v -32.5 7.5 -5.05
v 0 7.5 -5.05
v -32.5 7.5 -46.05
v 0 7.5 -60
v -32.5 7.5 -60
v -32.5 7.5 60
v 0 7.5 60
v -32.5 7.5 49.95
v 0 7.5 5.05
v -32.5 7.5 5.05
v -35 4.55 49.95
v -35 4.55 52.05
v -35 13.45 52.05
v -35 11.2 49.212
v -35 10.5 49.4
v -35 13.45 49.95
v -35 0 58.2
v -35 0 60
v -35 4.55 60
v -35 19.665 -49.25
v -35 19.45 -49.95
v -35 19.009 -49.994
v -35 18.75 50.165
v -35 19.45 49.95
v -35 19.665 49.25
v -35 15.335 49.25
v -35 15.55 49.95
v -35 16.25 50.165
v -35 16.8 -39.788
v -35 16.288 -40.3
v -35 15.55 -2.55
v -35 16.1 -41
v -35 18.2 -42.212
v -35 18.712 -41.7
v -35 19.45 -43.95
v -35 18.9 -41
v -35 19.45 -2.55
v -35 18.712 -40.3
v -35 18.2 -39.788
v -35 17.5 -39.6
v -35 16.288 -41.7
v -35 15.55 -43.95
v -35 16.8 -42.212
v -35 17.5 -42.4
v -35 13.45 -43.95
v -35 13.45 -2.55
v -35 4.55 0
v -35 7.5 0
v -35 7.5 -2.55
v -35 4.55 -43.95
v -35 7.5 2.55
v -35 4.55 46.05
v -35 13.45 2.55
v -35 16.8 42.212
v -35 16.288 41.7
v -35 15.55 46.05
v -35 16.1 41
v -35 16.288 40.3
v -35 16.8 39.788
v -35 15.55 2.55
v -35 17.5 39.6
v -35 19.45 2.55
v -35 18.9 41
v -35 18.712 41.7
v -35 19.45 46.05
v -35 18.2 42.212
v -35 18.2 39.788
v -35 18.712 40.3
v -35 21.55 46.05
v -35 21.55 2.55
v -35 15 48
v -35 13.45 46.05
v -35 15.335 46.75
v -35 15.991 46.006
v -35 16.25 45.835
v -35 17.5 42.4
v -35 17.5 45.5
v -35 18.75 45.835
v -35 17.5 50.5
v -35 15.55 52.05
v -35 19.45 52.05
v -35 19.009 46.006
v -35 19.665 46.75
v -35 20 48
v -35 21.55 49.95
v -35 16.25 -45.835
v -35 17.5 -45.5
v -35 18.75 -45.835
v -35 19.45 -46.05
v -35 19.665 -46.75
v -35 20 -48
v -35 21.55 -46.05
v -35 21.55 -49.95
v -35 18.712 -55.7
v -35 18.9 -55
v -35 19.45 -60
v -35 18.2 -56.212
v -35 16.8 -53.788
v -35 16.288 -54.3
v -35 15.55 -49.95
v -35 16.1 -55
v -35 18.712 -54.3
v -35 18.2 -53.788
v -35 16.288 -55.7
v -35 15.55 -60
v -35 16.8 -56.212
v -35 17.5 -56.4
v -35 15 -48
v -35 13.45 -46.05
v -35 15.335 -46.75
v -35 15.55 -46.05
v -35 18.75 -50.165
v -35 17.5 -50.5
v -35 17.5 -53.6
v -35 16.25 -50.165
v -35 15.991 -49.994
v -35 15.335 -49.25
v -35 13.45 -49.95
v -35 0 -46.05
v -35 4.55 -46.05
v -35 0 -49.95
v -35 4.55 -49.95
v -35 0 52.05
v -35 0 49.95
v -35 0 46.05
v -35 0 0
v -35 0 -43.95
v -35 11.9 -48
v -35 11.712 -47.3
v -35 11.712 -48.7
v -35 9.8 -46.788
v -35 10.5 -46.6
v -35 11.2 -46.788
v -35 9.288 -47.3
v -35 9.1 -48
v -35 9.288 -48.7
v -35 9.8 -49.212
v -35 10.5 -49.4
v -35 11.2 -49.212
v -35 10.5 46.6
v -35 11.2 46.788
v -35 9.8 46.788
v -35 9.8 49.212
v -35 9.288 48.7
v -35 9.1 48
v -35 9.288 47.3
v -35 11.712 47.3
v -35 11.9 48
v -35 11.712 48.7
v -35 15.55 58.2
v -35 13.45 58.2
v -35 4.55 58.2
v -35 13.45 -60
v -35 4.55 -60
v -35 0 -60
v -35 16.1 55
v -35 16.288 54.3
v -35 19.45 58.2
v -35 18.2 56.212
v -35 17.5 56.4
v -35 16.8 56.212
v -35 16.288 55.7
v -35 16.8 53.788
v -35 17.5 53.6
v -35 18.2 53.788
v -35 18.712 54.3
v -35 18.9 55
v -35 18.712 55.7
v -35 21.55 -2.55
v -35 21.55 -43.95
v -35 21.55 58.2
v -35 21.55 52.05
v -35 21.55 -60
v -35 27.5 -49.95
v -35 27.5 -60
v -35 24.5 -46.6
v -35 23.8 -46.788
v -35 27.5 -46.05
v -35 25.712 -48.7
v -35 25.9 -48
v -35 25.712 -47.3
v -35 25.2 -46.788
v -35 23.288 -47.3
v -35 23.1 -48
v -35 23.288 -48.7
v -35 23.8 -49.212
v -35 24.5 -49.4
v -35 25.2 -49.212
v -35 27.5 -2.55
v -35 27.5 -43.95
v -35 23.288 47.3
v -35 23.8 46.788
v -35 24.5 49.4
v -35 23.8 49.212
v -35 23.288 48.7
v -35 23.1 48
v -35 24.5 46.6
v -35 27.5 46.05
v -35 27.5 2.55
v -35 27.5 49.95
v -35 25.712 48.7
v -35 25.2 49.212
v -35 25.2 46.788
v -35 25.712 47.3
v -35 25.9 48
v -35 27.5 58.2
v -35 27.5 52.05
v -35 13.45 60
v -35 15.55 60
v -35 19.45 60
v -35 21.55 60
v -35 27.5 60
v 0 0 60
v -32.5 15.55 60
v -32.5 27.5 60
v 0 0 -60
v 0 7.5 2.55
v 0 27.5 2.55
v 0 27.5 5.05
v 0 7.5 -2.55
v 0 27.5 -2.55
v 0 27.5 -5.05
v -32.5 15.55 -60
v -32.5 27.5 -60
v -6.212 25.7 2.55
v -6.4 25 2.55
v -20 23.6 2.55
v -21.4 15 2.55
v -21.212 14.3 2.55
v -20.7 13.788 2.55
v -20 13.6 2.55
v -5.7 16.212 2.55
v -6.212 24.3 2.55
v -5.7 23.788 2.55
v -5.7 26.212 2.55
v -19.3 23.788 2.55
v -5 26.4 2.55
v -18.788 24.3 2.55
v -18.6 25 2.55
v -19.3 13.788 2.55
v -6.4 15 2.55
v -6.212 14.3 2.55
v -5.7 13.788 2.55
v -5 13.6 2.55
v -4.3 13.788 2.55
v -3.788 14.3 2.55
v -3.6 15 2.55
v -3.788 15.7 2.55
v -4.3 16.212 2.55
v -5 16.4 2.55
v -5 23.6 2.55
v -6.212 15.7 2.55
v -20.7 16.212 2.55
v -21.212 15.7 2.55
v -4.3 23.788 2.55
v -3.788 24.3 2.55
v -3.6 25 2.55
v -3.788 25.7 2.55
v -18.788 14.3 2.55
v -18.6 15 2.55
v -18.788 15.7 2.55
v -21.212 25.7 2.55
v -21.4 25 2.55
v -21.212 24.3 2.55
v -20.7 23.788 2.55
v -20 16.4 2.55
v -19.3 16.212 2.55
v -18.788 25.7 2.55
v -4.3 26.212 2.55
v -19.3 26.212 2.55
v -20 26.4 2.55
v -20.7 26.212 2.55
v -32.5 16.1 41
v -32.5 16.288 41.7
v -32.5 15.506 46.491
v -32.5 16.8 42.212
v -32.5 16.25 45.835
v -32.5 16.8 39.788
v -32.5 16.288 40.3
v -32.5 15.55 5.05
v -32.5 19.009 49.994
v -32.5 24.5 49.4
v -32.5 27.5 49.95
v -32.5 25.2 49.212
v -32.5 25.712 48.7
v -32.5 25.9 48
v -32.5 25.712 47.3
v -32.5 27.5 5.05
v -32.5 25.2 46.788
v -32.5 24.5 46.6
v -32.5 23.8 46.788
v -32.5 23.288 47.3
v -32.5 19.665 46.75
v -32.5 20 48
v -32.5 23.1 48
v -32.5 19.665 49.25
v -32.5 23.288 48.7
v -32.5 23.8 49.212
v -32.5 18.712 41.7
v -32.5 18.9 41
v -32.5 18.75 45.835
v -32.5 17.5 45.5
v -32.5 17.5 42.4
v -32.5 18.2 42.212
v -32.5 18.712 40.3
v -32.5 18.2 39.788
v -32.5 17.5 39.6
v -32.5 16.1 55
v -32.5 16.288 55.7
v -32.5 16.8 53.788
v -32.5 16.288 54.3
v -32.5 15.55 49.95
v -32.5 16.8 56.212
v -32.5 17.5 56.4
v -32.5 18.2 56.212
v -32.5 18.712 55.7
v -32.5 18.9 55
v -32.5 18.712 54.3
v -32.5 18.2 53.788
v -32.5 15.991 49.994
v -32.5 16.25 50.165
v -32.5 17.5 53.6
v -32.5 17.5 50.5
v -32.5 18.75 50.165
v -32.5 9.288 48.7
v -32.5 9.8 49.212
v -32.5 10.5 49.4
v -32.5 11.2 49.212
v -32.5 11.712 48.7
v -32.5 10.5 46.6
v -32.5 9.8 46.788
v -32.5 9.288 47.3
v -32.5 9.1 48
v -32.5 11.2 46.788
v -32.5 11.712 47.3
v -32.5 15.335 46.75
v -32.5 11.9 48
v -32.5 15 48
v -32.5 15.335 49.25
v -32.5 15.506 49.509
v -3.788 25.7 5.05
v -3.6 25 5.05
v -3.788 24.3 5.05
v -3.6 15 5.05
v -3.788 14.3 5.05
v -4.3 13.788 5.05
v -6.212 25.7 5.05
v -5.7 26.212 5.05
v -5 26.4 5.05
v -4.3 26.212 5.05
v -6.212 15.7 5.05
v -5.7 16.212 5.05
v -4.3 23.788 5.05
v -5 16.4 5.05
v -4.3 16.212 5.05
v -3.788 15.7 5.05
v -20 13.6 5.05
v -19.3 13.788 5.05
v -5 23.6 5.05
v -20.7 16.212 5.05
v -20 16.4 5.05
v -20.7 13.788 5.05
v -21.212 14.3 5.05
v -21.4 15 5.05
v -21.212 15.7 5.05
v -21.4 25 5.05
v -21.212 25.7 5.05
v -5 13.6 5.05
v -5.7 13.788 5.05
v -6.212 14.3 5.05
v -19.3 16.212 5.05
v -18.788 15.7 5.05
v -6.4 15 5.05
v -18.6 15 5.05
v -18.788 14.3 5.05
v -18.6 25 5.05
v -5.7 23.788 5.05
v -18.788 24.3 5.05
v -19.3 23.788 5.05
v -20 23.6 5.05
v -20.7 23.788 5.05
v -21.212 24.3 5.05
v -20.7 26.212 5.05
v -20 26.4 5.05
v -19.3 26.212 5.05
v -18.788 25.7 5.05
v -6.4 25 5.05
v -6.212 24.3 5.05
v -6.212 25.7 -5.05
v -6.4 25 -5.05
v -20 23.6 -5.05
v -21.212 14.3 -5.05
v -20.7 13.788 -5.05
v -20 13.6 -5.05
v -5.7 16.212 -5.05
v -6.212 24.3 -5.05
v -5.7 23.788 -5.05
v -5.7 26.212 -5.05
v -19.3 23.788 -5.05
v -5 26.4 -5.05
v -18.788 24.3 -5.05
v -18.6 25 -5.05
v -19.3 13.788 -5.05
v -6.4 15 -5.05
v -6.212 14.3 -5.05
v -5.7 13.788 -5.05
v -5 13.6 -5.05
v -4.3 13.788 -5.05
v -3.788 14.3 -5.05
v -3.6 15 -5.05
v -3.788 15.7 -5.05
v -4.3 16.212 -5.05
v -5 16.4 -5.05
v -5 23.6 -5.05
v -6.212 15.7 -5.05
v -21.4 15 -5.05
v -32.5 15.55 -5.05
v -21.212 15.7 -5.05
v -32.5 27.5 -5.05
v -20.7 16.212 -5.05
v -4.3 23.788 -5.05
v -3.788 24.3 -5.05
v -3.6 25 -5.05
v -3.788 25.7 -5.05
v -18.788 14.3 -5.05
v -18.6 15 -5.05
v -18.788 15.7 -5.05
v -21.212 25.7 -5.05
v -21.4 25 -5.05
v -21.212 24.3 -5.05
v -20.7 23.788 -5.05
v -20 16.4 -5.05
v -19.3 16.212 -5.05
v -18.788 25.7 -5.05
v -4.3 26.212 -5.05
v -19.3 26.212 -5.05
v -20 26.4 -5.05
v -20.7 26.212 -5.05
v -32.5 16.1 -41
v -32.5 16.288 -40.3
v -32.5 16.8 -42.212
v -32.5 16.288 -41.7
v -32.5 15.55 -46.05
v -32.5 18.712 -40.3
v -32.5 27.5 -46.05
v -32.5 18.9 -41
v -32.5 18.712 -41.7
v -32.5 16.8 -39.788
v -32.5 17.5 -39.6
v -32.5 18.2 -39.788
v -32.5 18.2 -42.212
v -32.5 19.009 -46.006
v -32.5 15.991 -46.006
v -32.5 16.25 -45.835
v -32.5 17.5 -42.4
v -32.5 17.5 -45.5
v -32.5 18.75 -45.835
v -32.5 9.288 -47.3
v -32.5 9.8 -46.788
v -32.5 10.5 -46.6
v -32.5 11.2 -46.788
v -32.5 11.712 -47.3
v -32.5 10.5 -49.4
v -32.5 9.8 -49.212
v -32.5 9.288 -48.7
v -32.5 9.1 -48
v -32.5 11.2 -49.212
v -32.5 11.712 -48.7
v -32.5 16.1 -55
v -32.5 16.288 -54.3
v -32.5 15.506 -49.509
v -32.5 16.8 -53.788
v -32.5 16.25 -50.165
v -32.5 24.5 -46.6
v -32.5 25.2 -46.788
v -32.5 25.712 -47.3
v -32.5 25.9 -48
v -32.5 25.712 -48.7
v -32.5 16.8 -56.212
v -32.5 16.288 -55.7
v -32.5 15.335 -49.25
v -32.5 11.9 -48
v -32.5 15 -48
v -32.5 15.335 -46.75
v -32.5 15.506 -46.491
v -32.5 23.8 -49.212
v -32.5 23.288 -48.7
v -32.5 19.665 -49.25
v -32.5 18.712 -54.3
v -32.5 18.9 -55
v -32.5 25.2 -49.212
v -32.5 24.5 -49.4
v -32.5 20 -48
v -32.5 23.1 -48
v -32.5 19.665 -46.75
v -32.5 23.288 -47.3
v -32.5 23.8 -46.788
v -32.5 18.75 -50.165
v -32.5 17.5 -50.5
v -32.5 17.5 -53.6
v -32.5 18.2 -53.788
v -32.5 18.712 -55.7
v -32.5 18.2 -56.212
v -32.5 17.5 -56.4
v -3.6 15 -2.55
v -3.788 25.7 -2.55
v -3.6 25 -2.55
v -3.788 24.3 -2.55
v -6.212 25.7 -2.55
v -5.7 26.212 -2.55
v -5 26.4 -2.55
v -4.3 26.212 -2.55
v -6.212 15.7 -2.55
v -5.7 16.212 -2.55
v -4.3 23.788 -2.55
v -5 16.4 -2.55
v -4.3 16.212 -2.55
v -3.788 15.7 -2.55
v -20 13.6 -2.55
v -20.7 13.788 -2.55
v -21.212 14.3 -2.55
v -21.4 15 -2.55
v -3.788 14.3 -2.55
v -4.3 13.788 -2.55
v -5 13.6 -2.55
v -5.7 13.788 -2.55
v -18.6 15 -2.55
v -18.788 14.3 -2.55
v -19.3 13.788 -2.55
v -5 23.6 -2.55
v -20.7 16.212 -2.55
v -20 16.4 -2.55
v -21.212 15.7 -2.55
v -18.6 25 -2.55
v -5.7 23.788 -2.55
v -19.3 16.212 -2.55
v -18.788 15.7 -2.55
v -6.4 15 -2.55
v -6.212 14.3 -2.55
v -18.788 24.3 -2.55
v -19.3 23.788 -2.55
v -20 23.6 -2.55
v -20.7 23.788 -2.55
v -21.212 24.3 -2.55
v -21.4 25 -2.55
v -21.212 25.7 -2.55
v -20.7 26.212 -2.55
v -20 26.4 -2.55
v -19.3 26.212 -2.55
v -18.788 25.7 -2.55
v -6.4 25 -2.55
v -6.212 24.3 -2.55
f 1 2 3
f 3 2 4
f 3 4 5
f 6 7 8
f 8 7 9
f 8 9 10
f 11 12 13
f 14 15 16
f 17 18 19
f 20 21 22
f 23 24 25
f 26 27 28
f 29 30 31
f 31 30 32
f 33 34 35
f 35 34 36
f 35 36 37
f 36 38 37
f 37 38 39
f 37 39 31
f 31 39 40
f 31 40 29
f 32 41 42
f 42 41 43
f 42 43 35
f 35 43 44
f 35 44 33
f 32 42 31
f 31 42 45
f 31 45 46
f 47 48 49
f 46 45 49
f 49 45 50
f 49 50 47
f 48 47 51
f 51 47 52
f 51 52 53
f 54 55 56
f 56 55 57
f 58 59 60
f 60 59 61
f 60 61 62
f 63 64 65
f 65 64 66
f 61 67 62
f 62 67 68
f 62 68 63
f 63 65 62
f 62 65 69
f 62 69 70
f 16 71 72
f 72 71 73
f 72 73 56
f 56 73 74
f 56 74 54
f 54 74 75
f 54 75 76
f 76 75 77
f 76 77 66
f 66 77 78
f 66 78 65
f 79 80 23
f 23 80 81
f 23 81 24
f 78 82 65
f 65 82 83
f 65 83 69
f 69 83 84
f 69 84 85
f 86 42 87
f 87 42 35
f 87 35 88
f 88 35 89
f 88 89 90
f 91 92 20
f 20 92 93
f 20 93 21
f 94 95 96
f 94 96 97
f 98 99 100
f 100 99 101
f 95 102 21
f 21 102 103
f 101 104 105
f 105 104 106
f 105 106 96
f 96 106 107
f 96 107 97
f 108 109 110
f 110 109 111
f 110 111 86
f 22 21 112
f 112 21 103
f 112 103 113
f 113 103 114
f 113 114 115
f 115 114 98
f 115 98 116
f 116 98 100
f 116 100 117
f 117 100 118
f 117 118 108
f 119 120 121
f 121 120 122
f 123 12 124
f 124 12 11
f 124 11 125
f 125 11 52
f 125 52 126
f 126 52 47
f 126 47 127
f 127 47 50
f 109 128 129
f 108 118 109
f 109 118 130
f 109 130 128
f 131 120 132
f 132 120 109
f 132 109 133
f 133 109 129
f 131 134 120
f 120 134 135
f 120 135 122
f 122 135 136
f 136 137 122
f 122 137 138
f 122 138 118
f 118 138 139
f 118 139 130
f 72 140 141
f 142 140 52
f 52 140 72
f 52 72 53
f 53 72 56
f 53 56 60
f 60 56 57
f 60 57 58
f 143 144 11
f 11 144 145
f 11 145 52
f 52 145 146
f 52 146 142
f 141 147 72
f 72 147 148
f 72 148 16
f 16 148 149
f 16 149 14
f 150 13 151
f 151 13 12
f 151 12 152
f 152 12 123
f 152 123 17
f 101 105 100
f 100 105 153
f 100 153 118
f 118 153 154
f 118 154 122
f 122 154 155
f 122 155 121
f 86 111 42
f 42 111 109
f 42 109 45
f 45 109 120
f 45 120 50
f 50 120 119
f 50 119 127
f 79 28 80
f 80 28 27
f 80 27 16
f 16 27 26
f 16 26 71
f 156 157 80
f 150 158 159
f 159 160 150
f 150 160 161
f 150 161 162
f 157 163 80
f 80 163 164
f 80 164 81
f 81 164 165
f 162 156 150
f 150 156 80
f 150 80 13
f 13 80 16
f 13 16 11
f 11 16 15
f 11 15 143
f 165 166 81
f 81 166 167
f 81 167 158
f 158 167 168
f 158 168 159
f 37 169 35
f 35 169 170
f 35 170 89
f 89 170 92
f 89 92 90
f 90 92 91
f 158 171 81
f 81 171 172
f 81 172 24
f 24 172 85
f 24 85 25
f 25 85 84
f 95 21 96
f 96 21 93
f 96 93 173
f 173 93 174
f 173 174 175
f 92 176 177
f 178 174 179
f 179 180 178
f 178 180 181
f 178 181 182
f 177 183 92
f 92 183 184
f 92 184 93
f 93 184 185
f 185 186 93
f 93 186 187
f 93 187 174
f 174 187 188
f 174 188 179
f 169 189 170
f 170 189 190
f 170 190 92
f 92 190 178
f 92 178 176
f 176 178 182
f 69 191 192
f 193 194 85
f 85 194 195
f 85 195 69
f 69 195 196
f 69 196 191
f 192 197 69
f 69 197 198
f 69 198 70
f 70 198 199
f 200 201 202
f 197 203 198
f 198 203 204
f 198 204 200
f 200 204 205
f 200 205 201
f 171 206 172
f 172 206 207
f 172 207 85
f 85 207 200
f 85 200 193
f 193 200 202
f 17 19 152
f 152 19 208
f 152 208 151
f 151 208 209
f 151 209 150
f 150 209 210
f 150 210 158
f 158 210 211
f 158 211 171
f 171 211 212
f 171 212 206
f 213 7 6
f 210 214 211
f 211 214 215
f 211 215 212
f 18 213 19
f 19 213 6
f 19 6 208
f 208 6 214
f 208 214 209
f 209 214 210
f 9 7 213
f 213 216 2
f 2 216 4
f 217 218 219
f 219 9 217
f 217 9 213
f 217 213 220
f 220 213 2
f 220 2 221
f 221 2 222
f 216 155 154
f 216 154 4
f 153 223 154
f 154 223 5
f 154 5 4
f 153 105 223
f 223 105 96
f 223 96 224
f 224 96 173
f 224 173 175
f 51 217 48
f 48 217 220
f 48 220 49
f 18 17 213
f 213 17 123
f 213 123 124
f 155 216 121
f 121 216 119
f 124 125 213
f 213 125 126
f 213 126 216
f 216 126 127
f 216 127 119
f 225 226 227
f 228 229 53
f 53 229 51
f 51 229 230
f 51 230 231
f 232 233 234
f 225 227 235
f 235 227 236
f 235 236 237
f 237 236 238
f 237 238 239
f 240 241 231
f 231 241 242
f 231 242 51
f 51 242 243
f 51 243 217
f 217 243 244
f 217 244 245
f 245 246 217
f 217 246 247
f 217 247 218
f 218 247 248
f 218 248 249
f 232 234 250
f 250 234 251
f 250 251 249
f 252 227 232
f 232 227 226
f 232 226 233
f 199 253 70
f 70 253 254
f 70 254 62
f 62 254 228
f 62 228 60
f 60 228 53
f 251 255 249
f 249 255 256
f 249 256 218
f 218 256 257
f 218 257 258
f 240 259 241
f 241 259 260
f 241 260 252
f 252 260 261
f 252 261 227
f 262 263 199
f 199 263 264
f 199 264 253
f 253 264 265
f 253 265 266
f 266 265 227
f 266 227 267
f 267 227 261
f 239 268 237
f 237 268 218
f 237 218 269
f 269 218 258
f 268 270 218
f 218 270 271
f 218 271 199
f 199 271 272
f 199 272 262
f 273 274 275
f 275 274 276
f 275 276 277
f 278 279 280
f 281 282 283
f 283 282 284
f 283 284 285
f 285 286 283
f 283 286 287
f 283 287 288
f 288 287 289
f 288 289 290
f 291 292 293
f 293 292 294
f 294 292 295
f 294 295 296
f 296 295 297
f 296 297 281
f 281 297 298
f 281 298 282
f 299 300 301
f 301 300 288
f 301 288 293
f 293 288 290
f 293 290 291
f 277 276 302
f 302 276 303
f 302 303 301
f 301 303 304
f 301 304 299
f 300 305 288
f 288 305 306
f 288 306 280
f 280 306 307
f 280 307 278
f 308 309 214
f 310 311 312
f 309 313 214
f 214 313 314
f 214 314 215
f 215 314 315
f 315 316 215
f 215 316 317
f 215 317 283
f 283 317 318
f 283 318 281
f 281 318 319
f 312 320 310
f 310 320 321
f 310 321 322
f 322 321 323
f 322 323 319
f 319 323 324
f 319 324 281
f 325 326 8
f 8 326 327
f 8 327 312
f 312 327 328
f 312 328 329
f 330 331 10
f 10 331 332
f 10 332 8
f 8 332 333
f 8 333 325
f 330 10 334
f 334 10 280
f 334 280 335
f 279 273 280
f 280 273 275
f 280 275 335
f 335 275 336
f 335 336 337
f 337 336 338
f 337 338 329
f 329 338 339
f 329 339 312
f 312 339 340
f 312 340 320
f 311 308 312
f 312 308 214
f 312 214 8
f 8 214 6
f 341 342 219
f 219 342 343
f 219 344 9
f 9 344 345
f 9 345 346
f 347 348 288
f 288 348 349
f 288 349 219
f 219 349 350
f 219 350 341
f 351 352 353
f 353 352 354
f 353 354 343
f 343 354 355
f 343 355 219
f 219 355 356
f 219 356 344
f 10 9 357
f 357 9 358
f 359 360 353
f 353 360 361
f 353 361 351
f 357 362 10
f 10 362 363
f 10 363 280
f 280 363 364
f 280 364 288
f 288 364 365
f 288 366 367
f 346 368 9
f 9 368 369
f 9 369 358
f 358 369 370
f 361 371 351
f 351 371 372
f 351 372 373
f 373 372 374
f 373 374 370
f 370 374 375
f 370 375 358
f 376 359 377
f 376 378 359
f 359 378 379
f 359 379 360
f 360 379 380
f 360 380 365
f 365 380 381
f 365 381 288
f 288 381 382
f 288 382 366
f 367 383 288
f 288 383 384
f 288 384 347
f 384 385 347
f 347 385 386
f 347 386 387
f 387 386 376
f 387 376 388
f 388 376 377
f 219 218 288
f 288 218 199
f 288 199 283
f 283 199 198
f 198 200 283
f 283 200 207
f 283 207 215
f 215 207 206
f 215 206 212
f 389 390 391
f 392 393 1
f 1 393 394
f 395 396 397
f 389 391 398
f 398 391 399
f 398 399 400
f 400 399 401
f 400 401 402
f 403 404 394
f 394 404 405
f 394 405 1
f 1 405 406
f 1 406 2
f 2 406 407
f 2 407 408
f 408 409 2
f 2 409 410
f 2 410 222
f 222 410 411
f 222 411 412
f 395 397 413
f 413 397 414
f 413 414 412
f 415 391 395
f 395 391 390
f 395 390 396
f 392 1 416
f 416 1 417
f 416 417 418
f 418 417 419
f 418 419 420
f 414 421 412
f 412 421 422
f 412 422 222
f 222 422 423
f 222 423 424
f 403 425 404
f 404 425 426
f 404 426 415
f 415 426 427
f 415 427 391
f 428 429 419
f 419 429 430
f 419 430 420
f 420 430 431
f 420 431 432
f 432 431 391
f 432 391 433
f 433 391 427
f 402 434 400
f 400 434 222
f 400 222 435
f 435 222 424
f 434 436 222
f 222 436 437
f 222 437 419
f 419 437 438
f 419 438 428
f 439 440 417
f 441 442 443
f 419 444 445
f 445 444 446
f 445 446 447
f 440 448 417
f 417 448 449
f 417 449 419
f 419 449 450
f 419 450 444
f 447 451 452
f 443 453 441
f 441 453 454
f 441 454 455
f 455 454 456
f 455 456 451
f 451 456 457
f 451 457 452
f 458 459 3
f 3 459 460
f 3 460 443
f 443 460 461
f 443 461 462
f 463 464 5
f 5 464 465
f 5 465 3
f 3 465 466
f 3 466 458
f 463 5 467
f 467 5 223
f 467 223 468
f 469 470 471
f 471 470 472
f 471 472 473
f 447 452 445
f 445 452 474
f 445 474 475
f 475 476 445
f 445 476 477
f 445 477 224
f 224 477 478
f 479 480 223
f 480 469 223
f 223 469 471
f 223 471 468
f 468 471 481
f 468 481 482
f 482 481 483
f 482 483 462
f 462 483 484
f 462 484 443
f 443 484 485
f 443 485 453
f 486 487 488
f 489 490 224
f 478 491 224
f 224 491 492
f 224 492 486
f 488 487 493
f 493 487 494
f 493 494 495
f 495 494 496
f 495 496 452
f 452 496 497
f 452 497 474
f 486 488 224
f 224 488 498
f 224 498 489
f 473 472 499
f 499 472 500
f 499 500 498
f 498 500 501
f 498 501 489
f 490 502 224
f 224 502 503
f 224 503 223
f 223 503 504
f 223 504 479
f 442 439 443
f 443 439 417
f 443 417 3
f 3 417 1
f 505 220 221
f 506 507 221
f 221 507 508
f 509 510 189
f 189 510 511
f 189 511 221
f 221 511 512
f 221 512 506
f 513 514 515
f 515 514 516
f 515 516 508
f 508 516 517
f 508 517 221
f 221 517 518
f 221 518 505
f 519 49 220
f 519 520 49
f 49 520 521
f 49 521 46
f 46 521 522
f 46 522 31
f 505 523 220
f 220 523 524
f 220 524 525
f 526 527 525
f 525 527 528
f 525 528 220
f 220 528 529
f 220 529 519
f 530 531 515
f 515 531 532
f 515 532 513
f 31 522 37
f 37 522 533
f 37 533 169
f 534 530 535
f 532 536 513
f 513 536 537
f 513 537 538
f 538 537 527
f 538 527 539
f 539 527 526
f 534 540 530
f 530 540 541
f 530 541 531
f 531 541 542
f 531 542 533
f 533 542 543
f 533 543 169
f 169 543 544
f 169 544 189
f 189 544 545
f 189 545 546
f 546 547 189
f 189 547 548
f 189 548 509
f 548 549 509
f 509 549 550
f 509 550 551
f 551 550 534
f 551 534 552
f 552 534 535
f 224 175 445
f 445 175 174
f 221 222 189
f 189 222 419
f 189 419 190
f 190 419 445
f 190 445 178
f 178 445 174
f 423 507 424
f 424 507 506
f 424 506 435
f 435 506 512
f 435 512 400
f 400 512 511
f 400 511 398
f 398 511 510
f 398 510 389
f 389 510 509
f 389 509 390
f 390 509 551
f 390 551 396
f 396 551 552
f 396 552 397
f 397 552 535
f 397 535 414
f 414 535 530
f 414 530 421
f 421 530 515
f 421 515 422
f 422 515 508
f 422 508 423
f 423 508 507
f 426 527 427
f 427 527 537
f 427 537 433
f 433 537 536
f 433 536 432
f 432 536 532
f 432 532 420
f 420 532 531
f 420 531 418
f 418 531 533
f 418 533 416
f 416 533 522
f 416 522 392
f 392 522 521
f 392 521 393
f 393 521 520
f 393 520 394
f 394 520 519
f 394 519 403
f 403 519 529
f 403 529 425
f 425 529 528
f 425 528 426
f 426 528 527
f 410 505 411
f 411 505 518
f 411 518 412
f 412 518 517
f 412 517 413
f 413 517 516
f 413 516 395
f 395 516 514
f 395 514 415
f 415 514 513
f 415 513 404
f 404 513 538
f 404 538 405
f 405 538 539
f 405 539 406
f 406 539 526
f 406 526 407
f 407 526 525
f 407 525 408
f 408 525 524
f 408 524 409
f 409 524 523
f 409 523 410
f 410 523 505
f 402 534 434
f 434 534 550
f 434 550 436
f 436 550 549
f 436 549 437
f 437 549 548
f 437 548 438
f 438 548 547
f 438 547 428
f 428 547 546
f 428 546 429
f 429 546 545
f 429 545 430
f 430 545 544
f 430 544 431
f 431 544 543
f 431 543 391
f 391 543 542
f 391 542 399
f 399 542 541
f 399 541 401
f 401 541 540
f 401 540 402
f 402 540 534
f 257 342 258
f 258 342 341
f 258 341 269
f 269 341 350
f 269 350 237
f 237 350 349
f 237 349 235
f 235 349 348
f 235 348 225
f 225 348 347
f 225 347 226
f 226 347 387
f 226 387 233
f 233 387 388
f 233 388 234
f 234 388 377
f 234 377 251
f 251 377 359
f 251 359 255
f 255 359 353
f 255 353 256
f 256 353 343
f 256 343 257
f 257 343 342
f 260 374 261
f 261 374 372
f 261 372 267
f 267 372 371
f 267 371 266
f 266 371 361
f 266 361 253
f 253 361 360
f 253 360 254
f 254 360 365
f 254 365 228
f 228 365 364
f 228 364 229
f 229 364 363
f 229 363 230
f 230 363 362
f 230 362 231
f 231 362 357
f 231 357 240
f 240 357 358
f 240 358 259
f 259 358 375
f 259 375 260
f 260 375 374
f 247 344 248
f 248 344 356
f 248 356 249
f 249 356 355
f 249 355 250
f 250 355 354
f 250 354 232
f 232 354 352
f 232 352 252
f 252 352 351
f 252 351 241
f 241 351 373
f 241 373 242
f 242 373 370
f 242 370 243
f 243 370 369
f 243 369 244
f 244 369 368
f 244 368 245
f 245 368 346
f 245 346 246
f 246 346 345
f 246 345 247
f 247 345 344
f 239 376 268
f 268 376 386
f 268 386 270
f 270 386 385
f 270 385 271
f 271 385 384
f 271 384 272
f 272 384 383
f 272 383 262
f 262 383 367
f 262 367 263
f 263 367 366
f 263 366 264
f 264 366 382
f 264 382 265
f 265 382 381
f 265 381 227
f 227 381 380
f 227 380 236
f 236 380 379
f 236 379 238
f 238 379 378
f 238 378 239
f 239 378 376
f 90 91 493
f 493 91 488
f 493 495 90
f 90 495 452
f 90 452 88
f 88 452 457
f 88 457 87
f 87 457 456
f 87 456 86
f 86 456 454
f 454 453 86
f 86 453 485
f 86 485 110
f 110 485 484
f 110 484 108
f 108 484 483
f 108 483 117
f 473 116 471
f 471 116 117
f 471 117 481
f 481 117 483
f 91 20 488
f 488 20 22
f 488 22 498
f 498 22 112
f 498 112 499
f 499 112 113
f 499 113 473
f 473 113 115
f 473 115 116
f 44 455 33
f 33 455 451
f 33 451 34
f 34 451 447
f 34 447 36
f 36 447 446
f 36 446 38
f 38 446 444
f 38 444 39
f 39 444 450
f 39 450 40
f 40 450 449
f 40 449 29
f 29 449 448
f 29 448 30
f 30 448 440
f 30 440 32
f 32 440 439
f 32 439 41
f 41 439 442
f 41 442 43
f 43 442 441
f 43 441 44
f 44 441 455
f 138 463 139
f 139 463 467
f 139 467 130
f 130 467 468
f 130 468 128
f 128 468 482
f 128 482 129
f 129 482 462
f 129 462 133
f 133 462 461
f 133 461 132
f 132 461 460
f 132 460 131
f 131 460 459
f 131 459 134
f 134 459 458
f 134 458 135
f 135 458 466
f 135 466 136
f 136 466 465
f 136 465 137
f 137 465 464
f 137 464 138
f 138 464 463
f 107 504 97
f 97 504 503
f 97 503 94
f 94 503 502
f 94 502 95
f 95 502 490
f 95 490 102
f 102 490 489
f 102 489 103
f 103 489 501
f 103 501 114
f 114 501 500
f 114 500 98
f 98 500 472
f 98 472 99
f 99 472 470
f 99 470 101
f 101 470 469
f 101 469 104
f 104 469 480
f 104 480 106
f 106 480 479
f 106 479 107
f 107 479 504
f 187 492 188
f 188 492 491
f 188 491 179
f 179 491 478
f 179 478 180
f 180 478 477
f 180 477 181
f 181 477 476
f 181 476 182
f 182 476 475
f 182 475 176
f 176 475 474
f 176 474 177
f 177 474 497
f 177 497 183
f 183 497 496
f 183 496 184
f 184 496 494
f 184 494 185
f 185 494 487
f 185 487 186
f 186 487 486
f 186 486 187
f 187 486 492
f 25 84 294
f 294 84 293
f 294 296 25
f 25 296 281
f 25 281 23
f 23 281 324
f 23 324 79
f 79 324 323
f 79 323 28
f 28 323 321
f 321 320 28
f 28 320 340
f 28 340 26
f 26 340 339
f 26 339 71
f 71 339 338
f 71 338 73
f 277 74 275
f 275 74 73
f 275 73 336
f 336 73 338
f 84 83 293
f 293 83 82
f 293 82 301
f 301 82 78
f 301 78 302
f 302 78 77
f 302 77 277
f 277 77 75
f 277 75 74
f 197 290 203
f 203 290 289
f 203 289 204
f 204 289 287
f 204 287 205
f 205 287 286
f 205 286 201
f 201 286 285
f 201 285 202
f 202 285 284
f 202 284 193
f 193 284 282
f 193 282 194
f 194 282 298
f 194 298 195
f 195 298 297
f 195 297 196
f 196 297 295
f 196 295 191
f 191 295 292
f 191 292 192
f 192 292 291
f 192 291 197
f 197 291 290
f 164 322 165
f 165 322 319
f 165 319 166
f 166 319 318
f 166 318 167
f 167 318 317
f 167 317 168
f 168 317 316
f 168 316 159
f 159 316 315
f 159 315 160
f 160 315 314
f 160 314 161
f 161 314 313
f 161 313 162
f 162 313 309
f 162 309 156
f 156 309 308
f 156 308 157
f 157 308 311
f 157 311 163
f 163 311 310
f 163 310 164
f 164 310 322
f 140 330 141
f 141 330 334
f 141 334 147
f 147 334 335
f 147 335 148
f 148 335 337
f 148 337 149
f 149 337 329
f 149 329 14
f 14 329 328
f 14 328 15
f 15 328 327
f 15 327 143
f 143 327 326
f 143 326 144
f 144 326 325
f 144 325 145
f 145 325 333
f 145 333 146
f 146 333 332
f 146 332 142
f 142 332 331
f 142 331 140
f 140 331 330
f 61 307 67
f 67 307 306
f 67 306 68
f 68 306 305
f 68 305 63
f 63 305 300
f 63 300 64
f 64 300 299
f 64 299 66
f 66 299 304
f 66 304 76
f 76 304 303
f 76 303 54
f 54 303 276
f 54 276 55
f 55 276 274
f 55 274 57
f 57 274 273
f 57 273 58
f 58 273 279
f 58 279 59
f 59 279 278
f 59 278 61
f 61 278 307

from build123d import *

# Parameters (mm, degrees)
SKETCH1_W           = 35
SKETCH1_H           = 120
BOSS_EXTRUDE1_DEPTH = 7.5
BOSS_EXTRUDE2_DEPTH = 20
SKETCH4_R           = 1.4
CUT_EXTRUDE2_DEPTH  = 12
SKETCH5_R           = 2.5
SKETCH5_R_2         = 1.4
CUT_EXTRUDE3_DEPTH  = 2.5


with BuildPart() as part:
    # Sketch1 → Boss-Extrude1 (new body)
    with BuildSketch(Plane(origin=(0, 0, 0), x_dir=(1, 0, 0), z_dir=(0, 1, 0))):
        with Locations((-17.5, 0)):
            Rectangle(SKETCH1_W, SKETCH1_H)
    extrude(amount=BOSS_EXTRUDE1_DEPTH)

    # Sketch2 → Boss-Extrude2 (add)
    with BuildSketch(Plane(origin=(0, 7.5, 0), x_dir=(1, 0, 0), z_dir=(0, 1, 0))):
        Polygon((0, 5.05), (-32.5, 5.05), (-32.5, 60), (-35, 60), (-35, 2.55), (0, 2.55), align=None)
        Polygon((0, -5.05), (0, -2.55), (-35, -2.55), (-35, -60), (-32.5, -60), (-32.5, -5.05), align=None)
    extrude(amount=BOSS_EXTRUDE2_DEPTH)

    # Sketch4 → Cut-Extrude2 (cut)
    with BuildSketch(Plane.XY.offset(5.05)):
        with Locations(Location((-5, 25, 0), (0, 0, 180))):
            Circle(SKETCH4_R)
        with Locations(Location((-20, 25, 0), (0, 0, 180))):
            Circle(SKETCH4_R)
        with Locations(Location((-5, 15, 0), (0, 0, 180))):
            Circle(SKETCH4_R)
        with Locations(Location((-20, 15, 0), (0, 0, 180))):
            Circle(SKETCH4_R)
    extrude(amount=-CUT_EXTRUDE2_DEPTH, mode=Mode.SUBTRACT)

    # Sketch5 → Cut-Extrude3 (cut)
    with BuildSketch(Plane(origin=(-32.5, 0, 0), x_dir=(0, 0, -1), z_dir=(1, 0, 0))):
        with Locations((-48, 17.5)):
            Circle(SKETCH5_R)
        with Locations((-48, 24.5)):
            Circle(SKETCH5_R_2)
        with Locations((-55, 17.5)):
            Circle(SKETCH5_R_2)
        with Locations(Location((-48, 10.5, 0), (0, 0, 180))):
            Circle(SKETCH5_R_2)
        with Locations(Location((-41, 17.5, 0), (0, 0, 180))):
            Circle(SKETCH5_R_2)
        with Locations((41, 17.5)):
            Circle(SKETCH5_R_2)
        with Locations((48, 10.5)):
            Circle(SKETCH5_R_2)
        with Locations(Location((55, 17.5, 0), (0, 0, 180))):
            Circle(SKETCH5_R_2)
        with Locations(Location((48, 24.5, 0), (0, 0, 180))):
            Circle(SKETCH5_R_2)
        with Locations(Location((48, 17.5, 0), (0, 0, 180))):
            Circle(SKETCH5_R)
    extrude(amount=-CUT_EXTRUDE3_DEPTH, mode=Mode.SUBTRACT)


solid = part.part
